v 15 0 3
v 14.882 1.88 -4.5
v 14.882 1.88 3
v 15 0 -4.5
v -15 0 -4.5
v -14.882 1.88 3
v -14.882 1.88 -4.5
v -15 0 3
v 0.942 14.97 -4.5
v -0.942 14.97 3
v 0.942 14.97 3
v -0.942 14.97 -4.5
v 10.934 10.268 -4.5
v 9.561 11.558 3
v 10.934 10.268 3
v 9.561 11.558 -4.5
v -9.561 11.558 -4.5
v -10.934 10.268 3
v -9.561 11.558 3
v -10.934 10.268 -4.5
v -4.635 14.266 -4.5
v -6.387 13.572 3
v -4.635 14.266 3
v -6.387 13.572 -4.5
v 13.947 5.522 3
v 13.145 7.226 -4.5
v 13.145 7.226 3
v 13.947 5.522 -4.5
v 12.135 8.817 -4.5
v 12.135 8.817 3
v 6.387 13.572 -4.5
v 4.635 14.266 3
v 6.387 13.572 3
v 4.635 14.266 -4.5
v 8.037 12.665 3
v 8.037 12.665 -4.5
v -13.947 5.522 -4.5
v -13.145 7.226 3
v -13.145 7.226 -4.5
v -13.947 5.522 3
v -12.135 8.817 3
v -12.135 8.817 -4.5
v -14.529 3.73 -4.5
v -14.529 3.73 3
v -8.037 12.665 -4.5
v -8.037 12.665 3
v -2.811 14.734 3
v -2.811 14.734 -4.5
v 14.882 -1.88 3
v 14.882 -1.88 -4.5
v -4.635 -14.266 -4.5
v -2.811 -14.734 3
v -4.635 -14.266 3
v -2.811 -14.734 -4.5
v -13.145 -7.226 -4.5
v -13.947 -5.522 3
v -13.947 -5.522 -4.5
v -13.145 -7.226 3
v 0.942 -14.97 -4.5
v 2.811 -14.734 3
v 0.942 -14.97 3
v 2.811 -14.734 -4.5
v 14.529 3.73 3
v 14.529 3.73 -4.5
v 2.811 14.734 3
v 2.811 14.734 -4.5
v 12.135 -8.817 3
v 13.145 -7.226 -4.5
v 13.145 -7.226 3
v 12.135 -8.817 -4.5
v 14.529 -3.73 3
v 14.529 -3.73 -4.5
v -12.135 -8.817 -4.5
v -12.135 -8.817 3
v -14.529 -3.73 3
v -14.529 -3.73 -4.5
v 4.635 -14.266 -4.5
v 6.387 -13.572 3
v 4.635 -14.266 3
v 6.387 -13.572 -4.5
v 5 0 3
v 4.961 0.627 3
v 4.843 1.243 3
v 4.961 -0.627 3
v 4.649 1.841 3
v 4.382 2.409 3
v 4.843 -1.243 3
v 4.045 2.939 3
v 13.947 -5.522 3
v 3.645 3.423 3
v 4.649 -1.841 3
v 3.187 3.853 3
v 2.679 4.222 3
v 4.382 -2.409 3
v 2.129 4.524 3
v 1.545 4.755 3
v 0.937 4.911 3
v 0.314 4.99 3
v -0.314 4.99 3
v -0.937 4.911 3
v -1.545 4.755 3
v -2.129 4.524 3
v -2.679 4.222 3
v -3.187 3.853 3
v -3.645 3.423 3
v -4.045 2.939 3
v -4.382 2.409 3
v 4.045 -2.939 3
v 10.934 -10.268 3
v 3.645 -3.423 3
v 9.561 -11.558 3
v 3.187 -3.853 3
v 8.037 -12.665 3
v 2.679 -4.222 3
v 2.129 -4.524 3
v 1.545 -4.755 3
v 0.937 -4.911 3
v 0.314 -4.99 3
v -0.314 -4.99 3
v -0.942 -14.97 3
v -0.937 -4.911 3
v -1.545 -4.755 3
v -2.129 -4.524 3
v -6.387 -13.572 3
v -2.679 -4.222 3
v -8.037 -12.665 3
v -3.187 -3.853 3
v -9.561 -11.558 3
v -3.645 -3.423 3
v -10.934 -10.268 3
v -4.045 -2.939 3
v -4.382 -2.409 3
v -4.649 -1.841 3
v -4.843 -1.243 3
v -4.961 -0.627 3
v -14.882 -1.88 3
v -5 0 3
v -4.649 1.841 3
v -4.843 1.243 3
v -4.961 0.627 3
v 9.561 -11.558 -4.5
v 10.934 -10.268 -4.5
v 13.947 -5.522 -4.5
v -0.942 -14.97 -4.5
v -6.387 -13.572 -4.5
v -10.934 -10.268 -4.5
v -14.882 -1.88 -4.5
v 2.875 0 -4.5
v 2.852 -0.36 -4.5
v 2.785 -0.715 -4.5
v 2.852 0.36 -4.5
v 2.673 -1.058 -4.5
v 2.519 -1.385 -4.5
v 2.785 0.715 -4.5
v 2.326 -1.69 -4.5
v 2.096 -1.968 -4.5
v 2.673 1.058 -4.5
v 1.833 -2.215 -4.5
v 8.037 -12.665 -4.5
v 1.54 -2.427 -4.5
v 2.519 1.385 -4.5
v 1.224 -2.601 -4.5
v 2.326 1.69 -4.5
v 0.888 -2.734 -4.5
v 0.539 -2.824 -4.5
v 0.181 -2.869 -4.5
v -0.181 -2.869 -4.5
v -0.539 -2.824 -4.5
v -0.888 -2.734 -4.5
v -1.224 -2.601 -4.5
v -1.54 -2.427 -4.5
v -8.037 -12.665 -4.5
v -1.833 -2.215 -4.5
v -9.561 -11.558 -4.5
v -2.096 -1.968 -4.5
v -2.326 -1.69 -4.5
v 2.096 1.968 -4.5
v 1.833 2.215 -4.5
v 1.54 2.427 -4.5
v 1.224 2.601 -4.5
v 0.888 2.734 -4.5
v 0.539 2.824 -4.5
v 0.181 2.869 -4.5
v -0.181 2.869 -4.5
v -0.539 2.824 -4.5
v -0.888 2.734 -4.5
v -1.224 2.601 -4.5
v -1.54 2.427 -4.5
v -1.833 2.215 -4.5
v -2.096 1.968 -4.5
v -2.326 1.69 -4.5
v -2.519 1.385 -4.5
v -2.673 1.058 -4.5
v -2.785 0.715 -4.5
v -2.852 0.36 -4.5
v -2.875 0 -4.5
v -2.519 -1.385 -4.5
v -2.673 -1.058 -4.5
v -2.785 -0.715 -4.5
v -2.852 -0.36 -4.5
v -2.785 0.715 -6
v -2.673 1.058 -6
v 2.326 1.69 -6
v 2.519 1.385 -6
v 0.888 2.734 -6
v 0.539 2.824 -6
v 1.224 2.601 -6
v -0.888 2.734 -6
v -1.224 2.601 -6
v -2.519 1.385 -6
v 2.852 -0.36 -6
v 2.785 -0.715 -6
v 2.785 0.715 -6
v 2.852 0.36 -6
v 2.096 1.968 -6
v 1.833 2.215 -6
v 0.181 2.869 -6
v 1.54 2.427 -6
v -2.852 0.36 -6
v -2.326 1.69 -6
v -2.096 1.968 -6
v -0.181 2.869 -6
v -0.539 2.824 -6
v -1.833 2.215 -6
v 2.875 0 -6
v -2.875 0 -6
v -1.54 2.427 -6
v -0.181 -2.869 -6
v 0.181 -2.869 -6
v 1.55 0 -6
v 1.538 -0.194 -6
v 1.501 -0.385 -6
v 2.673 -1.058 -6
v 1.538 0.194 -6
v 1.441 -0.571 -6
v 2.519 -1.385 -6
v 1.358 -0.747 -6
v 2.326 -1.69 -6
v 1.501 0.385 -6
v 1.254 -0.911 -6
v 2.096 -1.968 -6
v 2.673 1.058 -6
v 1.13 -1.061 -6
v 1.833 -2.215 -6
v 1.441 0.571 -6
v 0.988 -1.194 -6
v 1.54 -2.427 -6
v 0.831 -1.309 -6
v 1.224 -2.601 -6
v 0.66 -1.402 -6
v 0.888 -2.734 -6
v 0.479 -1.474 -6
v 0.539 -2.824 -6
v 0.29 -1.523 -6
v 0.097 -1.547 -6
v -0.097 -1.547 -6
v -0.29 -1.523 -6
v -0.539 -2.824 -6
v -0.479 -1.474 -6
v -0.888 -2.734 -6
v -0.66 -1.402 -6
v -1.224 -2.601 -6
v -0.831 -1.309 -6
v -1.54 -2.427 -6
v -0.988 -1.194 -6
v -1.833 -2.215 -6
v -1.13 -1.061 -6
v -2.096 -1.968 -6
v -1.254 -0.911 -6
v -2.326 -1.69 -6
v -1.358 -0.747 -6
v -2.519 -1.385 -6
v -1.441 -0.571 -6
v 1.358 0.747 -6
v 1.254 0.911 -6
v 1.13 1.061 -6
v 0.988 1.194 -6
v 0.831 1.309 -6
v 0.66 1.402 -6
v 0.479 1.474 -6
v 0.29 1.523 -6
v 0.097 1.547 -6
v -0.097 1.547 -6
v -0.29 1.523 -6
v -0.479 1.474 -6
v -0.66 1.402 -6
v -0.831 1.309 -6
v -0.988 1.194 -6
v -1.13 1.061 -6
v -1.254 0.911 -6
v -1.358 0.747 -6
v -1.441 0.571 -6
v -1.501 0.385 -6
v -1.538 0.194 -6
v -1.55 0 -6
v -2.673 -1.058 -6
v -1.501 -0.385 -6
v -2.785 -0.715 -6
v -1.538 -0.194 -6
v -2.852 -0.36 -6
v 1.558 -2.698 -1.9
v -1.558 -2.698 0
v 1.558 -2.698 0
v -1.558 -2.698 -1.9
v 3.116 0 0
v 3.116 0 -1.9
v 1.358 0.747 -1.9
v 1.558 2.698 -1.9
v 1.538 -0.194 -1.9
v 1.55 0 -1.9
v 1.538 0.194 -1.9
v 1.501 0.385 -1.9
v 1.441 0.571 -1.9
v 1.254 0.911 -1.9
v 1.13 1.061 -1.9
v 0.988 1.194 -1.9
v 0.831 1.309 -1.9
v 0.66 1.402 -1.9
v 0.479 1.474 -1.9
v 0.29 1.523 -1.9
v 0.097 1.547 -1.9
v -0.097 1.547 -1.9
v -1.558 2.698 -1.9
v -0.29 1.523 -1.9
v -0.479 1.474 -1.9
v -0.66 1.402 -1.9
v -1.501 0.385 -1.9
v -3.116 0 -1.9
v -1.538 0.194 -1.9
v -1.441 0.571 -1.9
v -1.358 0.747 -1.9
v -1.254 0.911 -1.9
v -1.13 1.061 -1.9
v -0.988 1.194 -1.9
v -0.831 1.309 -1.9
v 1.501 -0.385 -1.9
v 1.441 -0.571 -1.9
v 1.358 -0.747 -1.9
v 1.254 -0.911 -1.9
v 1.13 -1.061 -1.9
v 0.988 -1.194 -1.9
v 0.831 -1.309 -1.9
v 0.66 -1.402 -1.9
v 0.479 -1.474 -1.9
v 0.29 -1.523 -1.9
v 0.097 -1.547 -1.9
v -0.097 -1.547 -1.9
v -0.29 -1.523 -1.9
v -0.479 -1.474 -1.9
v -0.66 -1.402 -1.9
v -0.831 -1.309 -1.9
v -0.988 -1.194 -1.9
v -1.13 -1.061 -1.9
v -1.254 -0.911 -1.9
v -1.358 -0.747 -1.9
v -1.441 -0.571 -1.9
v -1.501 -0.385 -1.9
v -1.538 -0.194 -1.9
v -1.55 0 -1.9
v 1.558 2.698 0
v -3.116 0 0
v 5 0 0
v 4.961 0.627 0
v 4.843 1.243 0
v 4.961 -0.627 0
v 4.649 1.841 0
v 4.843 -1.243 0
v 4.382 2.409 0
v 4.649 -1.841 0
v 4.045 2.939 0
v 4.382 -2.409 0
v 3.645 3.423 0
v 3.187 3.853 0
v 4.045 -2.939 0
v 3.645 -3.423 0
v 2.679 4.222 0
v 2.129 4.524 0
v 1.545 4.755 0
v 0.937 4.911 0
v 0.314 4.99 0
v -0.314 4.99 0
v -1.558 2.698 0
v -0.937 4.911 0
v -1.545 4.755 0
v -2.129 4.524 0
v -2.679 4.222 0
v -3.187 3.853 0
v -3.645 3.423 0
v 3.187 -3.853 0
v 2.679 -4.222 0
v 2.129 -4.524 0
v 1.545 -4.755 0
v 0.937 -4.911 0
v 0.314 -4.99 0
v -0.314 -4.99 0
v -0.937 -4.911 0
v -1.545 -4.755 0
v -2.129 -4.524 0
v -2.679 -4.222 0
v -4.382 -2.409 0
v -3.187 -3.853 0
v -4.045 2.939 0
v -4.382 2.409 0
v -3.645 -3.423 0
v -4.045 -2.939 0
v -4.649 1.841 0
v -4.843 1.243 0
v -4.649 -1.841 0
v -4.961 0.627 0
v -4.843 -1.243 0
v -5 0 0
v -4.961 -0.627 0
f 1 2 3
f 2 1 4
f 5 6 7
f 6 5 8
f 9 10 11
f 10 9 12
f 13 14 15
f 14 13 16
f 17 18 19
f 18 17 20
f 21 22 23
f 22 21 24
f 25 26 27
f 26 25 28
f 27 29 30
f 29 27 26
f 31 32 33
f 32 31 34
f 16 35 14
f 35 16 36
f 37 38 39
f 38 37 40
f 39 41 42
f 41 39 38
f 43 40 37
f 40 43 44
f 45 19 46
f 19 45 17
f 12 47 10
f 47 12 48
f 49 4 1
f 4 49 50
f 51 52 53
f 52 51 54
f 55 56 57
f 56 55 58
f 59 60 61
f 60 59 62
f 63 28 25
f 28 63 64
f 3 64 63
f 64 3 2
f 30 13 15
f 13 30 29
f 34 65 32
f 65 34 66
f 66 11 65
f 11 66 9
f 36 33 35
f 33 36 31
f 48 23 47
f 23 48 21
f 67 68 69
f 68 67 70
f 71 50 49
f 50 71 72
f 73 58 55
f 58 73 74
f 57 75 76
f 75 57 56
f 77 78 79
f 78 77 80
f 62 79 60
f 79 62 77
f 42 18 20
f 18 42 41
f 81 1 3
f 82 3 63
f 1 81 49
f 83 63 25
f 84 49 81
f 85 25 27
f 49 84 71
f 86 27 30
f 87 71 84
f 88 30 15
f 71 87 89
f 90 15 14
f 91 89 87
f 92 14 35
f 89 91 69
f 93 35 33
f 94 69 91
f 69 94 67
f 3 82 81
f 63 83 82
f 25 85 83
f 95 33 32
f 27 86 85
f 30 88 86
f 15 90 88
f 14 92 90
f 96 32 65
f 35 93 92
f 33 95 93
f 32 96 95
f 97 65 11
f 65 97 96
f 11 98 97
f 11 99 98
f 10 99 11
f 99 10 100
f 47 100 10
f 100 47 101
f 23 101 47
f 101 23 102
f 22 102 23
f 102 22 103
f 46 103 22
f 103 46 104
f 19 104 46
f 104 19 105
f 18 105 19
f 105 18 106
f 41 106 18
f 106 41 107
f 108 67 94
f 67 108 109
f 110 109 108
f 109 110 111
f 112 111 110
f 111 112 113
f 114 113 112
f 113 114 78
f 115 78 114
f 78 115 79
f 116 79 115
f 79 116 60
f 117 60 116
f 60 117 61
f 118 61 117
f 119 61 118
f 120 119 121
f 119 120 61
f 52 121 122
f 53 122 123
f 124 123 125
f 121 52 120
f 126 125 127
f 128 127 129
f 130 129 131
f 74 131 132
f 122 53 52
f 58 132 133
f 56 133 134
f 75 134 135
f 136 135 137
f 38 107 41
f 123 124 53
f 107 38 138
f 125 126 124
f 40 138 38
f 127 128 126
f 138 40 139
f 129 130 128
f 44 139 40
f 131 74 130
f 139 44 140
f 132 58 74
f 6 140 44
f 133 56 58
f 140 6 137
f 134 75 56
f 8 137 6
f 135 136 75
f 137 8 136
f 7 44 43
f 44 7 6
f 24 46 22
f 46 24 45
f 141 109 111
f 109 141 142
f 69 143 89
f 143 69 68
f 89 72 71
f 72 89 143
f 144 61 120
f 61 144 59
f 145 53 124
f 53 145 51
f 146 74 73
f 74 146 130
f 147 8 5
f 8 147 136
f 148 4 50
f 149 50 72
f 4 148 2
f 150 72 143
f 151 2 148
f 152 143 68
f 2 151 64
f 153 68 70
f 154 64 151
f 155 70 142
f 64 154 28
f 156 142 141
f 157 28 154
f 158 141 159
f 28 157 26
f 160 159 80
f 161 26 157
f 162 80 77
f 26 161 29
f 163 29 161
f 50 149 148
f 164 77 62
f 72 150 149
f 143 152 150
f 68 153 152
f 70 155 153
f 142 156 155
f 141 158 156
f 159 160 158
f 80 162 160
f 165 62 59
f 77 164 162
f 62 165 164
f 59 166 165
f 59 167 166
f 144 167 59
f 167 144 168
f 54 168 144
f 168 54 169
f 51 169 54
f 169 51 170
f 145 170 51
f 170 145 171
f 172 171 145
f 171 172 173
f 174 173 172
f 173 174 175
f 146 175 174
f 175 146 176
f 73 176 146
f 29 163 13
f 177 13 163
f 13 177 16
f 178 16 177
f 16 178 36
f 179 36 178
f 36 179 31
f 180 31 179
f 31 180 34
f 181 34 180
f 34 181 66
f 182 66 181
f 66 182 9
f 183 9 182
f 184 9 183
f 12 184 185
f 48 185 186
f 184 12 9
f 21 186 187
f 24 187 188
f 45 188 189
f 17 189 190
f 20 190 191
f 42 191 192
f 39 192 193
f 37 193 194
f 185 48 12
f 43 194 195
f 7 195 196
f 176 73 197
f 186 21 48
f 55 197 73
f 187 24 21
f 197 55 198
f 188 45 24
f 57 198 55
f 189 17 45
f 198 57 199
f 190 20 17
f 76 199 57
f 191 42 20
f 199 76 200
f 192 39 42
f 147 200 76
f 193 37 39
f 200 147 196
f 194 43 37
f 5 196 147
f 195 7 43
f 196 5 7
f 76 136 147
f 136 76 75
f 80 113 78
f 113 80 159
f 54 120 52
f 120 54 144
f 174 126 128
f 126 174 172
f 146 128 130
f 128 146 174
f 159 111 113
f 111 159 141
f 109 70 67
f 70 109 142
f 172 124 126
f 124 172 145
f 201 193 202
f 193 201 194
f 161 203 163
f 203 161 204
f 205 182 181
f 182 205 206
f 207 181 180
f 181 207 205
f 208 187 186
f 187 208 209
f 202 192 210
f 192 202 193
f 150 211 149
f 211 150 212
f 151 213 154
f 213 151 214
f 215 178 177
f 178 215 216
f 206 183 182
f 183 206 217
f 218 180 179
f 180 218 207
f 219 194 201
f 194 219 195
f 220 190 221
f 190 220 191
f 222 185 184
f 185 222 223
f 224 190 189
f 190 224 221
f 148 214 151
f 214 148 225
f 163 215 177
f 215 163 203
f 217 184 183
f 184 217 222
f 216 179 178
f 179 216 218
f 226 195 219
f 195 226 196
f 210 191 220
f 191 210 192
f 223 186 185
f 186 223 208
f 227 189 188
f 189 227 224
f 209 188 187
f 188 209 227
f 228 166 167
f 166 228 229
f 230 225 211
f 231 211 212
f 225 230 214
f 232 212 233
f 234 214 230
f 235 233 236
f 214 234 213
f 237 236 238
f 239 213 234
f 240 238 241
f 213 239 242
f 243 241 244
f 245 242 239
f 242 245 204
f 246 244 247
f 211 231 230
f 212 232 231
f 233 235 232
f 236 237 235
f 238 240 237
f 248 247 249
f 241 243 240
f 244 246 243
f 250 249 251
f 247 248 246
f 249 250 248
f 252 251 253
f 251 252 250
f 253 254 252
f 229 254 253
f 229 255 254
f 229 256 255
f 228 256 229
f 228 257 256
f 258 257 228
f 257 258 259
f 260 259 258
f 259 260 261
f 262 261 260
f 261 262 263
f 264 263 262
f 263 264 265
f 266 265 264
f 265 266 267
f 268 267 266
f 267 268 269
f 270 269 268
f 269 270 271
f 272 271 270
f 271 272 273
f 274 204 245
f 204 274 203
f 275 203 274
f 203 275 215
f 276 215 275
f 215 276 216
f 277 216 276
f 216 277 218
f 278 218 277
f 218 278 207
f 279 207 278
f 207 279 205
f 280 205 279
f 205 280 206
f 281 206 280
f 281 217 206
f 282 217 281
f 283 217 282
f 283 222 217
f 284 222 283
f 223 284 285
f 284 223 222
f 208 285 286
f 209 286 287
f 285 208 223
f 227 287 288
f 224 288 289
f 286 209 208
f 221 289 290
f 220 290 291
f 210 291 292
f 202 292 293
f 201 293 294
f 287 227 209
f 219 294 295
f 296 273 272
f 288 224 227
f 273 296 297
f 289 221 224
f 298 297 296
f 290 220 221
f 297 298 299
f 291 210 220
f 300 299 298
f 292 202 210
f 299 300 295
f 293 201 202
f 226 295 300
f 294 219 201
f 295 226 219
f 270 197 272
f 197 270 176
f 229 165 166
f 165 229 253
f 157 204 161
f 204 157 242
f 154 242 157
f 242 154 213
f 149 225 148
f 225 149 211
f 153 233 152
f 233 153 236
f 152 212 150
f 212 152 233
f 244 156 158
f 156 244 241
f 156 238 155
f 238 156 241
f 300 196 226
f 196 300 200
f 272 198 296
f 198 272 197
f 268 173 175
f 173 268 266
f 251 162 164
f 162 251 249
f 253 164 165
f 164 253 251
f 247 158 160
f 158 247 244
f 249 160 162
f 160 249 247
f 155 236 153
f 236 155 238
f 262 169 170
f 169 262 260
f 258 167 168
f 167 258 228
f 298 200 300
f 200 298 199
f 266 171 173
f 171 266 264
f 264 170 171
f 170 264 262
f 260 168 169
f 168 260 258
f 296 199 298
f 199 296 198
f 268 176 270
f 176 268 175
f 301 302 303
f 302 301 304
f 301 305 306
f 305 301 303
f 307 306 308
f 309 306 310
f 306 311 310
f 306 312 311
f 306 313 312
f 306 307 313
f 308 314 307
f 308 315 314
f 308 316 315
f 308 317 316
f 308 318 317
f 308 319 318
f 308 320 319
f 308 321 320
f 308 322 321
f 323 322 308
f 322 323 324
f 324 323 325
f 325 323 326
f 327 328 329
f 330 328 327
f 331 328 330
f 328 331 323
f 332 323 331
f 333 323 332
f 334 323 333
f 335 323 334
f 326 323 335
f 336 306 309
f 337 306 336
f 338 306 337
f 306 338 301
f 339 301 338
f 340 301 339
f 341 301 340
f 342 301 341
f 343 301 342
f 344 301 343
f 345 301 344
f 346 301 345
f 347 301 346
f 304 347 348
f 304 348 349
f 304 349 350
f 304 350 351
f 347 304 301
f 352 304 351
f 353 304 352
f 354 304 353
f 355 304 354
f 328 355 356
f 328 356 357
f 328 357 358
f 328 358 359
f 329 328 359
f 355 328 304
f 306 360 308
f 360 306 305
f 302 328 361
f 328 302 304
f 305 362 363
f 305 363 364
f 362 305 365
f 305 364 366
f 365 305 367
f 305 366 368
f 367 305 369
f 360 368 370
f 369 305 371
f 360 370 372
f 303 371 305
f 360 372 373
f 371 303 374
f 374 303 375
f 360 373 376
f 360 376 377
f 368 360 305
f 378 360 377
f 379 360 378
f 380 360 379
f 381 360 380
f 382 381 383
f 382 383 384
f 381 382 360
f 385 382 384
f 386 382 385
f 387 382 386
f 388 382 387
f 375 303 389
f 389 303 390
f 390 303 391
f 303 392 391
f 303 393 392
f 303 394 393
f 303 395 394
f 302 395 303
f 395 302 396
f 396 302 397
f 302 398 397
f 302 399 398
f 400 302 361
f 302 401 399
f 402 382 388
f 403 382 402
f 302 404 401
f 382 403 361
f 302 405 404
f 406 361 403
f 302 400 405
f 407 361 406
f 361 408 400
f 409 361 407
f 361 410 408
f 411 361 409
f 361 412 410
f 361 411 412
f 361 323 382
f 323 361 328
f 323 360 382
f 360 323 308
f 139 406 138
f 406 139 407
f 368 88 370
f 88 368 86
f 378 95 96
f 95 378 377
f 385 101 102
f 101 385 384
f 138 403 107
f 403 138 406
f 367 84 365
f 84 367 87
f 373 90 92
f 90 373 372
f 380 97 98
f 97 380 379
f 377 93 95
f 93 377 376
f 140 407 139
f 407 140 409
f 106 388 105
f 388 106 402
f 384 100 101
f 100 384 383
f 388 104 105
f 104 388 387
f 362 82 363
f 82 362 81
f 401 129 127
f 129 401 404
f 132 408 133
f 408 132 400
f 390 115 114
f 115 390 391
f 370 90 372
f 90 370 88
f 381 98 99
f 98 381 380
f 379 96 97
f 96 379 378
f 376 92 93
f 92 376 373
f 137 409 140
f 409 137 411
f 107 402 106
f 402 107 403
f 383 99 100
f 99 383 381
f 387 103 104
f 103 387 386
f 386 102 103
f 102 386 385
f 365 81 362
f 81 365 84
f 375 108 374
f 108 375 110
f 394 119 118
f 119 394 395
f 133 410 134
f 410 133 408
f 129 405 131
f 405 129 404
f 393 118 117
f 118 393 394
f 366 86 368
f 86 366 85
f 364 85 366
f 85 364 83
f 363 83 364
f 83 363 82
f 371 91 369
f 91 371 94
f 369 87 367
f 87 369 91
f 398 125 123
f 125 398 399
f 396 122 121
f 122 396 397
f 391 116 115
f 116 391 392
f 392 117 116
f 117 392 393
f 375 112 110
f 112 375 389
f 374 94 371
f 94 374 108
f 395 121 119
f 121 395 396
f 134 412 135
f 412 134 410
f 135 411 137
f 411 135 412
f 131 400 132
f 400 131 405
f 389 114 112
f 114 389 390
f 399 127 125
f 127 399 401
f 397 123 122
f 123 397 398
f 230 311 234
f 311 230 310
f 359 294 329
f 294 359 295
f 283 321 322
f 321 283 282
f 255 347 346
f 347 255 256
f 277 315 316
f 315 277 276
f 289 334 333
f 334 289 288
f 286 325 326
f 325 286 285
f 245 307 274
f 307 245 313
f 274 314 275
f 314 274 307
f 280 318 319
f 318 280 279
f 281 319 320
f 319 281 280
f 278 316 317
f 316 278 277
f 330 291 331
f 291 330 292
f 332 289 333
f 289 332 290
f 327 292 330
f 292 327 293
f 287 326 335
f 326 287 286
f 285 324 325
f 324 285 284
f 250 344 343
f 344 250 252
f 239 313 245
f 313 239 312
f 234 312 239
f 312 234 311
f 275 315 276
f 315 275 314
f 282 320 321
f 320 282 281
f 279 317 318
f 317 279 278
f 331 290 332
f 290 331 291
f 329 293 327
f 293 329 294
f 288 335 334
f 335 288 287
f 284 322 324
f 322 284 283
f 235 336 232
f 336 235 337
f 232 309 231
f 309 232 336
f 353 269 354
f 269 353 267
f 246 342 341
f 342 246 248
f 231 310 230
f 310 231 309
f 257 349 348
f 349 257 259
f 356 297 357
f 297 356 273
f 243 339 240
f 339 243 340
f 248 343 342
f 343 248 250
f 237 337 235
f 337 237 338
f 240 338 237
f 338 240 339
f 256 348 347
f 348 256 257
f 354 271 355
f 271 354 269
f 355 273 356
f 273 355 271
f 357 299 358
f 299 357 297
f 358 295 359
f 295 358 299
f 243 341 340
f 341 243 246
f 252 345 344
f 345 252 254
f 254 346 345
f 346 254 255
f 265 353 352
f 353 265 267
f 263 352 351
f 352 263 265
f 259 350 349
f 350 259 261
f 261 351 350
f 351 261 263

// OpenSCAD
$fn = 50;


difference() {
	union() {
		translate(v = [0, 0, -4.5000000000]) {
			cylinder(h = 7.5000000000, r = 15.0000000000);
		}
		#translate(v = [0, 0, -6.0000000000]) {
			cylinder(h = 6, r = 2.8750000000);
		}
	}
	union() {
		translate(v = [0, 0, 0]) {
			rotate(a = [0, 0, 0]) {
				difference() {
					union() {
						translate(v = [0, 0, -1.9000000000]) {
							linear_extrude(height = 1.9000000000) {
								polygon(points = [[3.1158000000, 0.0000000000], [1.5579000000, 2.6983619531], [-1.5579000000, 2.6983619531], [-3.1158000000, 0.0000000000], [-1.5579000000, -2.6983619531], [1.5579000000, -2.6983619531]]);
							}
						}
					}
					union();
				}
			}
		}
		#cylinder(h = 3, r = 5.0000000000);
		#translate(v = [0, 0, -100.0000000000]) {
			cylinder(h = 200, r = 1.5500000000);
		}
	}
}
